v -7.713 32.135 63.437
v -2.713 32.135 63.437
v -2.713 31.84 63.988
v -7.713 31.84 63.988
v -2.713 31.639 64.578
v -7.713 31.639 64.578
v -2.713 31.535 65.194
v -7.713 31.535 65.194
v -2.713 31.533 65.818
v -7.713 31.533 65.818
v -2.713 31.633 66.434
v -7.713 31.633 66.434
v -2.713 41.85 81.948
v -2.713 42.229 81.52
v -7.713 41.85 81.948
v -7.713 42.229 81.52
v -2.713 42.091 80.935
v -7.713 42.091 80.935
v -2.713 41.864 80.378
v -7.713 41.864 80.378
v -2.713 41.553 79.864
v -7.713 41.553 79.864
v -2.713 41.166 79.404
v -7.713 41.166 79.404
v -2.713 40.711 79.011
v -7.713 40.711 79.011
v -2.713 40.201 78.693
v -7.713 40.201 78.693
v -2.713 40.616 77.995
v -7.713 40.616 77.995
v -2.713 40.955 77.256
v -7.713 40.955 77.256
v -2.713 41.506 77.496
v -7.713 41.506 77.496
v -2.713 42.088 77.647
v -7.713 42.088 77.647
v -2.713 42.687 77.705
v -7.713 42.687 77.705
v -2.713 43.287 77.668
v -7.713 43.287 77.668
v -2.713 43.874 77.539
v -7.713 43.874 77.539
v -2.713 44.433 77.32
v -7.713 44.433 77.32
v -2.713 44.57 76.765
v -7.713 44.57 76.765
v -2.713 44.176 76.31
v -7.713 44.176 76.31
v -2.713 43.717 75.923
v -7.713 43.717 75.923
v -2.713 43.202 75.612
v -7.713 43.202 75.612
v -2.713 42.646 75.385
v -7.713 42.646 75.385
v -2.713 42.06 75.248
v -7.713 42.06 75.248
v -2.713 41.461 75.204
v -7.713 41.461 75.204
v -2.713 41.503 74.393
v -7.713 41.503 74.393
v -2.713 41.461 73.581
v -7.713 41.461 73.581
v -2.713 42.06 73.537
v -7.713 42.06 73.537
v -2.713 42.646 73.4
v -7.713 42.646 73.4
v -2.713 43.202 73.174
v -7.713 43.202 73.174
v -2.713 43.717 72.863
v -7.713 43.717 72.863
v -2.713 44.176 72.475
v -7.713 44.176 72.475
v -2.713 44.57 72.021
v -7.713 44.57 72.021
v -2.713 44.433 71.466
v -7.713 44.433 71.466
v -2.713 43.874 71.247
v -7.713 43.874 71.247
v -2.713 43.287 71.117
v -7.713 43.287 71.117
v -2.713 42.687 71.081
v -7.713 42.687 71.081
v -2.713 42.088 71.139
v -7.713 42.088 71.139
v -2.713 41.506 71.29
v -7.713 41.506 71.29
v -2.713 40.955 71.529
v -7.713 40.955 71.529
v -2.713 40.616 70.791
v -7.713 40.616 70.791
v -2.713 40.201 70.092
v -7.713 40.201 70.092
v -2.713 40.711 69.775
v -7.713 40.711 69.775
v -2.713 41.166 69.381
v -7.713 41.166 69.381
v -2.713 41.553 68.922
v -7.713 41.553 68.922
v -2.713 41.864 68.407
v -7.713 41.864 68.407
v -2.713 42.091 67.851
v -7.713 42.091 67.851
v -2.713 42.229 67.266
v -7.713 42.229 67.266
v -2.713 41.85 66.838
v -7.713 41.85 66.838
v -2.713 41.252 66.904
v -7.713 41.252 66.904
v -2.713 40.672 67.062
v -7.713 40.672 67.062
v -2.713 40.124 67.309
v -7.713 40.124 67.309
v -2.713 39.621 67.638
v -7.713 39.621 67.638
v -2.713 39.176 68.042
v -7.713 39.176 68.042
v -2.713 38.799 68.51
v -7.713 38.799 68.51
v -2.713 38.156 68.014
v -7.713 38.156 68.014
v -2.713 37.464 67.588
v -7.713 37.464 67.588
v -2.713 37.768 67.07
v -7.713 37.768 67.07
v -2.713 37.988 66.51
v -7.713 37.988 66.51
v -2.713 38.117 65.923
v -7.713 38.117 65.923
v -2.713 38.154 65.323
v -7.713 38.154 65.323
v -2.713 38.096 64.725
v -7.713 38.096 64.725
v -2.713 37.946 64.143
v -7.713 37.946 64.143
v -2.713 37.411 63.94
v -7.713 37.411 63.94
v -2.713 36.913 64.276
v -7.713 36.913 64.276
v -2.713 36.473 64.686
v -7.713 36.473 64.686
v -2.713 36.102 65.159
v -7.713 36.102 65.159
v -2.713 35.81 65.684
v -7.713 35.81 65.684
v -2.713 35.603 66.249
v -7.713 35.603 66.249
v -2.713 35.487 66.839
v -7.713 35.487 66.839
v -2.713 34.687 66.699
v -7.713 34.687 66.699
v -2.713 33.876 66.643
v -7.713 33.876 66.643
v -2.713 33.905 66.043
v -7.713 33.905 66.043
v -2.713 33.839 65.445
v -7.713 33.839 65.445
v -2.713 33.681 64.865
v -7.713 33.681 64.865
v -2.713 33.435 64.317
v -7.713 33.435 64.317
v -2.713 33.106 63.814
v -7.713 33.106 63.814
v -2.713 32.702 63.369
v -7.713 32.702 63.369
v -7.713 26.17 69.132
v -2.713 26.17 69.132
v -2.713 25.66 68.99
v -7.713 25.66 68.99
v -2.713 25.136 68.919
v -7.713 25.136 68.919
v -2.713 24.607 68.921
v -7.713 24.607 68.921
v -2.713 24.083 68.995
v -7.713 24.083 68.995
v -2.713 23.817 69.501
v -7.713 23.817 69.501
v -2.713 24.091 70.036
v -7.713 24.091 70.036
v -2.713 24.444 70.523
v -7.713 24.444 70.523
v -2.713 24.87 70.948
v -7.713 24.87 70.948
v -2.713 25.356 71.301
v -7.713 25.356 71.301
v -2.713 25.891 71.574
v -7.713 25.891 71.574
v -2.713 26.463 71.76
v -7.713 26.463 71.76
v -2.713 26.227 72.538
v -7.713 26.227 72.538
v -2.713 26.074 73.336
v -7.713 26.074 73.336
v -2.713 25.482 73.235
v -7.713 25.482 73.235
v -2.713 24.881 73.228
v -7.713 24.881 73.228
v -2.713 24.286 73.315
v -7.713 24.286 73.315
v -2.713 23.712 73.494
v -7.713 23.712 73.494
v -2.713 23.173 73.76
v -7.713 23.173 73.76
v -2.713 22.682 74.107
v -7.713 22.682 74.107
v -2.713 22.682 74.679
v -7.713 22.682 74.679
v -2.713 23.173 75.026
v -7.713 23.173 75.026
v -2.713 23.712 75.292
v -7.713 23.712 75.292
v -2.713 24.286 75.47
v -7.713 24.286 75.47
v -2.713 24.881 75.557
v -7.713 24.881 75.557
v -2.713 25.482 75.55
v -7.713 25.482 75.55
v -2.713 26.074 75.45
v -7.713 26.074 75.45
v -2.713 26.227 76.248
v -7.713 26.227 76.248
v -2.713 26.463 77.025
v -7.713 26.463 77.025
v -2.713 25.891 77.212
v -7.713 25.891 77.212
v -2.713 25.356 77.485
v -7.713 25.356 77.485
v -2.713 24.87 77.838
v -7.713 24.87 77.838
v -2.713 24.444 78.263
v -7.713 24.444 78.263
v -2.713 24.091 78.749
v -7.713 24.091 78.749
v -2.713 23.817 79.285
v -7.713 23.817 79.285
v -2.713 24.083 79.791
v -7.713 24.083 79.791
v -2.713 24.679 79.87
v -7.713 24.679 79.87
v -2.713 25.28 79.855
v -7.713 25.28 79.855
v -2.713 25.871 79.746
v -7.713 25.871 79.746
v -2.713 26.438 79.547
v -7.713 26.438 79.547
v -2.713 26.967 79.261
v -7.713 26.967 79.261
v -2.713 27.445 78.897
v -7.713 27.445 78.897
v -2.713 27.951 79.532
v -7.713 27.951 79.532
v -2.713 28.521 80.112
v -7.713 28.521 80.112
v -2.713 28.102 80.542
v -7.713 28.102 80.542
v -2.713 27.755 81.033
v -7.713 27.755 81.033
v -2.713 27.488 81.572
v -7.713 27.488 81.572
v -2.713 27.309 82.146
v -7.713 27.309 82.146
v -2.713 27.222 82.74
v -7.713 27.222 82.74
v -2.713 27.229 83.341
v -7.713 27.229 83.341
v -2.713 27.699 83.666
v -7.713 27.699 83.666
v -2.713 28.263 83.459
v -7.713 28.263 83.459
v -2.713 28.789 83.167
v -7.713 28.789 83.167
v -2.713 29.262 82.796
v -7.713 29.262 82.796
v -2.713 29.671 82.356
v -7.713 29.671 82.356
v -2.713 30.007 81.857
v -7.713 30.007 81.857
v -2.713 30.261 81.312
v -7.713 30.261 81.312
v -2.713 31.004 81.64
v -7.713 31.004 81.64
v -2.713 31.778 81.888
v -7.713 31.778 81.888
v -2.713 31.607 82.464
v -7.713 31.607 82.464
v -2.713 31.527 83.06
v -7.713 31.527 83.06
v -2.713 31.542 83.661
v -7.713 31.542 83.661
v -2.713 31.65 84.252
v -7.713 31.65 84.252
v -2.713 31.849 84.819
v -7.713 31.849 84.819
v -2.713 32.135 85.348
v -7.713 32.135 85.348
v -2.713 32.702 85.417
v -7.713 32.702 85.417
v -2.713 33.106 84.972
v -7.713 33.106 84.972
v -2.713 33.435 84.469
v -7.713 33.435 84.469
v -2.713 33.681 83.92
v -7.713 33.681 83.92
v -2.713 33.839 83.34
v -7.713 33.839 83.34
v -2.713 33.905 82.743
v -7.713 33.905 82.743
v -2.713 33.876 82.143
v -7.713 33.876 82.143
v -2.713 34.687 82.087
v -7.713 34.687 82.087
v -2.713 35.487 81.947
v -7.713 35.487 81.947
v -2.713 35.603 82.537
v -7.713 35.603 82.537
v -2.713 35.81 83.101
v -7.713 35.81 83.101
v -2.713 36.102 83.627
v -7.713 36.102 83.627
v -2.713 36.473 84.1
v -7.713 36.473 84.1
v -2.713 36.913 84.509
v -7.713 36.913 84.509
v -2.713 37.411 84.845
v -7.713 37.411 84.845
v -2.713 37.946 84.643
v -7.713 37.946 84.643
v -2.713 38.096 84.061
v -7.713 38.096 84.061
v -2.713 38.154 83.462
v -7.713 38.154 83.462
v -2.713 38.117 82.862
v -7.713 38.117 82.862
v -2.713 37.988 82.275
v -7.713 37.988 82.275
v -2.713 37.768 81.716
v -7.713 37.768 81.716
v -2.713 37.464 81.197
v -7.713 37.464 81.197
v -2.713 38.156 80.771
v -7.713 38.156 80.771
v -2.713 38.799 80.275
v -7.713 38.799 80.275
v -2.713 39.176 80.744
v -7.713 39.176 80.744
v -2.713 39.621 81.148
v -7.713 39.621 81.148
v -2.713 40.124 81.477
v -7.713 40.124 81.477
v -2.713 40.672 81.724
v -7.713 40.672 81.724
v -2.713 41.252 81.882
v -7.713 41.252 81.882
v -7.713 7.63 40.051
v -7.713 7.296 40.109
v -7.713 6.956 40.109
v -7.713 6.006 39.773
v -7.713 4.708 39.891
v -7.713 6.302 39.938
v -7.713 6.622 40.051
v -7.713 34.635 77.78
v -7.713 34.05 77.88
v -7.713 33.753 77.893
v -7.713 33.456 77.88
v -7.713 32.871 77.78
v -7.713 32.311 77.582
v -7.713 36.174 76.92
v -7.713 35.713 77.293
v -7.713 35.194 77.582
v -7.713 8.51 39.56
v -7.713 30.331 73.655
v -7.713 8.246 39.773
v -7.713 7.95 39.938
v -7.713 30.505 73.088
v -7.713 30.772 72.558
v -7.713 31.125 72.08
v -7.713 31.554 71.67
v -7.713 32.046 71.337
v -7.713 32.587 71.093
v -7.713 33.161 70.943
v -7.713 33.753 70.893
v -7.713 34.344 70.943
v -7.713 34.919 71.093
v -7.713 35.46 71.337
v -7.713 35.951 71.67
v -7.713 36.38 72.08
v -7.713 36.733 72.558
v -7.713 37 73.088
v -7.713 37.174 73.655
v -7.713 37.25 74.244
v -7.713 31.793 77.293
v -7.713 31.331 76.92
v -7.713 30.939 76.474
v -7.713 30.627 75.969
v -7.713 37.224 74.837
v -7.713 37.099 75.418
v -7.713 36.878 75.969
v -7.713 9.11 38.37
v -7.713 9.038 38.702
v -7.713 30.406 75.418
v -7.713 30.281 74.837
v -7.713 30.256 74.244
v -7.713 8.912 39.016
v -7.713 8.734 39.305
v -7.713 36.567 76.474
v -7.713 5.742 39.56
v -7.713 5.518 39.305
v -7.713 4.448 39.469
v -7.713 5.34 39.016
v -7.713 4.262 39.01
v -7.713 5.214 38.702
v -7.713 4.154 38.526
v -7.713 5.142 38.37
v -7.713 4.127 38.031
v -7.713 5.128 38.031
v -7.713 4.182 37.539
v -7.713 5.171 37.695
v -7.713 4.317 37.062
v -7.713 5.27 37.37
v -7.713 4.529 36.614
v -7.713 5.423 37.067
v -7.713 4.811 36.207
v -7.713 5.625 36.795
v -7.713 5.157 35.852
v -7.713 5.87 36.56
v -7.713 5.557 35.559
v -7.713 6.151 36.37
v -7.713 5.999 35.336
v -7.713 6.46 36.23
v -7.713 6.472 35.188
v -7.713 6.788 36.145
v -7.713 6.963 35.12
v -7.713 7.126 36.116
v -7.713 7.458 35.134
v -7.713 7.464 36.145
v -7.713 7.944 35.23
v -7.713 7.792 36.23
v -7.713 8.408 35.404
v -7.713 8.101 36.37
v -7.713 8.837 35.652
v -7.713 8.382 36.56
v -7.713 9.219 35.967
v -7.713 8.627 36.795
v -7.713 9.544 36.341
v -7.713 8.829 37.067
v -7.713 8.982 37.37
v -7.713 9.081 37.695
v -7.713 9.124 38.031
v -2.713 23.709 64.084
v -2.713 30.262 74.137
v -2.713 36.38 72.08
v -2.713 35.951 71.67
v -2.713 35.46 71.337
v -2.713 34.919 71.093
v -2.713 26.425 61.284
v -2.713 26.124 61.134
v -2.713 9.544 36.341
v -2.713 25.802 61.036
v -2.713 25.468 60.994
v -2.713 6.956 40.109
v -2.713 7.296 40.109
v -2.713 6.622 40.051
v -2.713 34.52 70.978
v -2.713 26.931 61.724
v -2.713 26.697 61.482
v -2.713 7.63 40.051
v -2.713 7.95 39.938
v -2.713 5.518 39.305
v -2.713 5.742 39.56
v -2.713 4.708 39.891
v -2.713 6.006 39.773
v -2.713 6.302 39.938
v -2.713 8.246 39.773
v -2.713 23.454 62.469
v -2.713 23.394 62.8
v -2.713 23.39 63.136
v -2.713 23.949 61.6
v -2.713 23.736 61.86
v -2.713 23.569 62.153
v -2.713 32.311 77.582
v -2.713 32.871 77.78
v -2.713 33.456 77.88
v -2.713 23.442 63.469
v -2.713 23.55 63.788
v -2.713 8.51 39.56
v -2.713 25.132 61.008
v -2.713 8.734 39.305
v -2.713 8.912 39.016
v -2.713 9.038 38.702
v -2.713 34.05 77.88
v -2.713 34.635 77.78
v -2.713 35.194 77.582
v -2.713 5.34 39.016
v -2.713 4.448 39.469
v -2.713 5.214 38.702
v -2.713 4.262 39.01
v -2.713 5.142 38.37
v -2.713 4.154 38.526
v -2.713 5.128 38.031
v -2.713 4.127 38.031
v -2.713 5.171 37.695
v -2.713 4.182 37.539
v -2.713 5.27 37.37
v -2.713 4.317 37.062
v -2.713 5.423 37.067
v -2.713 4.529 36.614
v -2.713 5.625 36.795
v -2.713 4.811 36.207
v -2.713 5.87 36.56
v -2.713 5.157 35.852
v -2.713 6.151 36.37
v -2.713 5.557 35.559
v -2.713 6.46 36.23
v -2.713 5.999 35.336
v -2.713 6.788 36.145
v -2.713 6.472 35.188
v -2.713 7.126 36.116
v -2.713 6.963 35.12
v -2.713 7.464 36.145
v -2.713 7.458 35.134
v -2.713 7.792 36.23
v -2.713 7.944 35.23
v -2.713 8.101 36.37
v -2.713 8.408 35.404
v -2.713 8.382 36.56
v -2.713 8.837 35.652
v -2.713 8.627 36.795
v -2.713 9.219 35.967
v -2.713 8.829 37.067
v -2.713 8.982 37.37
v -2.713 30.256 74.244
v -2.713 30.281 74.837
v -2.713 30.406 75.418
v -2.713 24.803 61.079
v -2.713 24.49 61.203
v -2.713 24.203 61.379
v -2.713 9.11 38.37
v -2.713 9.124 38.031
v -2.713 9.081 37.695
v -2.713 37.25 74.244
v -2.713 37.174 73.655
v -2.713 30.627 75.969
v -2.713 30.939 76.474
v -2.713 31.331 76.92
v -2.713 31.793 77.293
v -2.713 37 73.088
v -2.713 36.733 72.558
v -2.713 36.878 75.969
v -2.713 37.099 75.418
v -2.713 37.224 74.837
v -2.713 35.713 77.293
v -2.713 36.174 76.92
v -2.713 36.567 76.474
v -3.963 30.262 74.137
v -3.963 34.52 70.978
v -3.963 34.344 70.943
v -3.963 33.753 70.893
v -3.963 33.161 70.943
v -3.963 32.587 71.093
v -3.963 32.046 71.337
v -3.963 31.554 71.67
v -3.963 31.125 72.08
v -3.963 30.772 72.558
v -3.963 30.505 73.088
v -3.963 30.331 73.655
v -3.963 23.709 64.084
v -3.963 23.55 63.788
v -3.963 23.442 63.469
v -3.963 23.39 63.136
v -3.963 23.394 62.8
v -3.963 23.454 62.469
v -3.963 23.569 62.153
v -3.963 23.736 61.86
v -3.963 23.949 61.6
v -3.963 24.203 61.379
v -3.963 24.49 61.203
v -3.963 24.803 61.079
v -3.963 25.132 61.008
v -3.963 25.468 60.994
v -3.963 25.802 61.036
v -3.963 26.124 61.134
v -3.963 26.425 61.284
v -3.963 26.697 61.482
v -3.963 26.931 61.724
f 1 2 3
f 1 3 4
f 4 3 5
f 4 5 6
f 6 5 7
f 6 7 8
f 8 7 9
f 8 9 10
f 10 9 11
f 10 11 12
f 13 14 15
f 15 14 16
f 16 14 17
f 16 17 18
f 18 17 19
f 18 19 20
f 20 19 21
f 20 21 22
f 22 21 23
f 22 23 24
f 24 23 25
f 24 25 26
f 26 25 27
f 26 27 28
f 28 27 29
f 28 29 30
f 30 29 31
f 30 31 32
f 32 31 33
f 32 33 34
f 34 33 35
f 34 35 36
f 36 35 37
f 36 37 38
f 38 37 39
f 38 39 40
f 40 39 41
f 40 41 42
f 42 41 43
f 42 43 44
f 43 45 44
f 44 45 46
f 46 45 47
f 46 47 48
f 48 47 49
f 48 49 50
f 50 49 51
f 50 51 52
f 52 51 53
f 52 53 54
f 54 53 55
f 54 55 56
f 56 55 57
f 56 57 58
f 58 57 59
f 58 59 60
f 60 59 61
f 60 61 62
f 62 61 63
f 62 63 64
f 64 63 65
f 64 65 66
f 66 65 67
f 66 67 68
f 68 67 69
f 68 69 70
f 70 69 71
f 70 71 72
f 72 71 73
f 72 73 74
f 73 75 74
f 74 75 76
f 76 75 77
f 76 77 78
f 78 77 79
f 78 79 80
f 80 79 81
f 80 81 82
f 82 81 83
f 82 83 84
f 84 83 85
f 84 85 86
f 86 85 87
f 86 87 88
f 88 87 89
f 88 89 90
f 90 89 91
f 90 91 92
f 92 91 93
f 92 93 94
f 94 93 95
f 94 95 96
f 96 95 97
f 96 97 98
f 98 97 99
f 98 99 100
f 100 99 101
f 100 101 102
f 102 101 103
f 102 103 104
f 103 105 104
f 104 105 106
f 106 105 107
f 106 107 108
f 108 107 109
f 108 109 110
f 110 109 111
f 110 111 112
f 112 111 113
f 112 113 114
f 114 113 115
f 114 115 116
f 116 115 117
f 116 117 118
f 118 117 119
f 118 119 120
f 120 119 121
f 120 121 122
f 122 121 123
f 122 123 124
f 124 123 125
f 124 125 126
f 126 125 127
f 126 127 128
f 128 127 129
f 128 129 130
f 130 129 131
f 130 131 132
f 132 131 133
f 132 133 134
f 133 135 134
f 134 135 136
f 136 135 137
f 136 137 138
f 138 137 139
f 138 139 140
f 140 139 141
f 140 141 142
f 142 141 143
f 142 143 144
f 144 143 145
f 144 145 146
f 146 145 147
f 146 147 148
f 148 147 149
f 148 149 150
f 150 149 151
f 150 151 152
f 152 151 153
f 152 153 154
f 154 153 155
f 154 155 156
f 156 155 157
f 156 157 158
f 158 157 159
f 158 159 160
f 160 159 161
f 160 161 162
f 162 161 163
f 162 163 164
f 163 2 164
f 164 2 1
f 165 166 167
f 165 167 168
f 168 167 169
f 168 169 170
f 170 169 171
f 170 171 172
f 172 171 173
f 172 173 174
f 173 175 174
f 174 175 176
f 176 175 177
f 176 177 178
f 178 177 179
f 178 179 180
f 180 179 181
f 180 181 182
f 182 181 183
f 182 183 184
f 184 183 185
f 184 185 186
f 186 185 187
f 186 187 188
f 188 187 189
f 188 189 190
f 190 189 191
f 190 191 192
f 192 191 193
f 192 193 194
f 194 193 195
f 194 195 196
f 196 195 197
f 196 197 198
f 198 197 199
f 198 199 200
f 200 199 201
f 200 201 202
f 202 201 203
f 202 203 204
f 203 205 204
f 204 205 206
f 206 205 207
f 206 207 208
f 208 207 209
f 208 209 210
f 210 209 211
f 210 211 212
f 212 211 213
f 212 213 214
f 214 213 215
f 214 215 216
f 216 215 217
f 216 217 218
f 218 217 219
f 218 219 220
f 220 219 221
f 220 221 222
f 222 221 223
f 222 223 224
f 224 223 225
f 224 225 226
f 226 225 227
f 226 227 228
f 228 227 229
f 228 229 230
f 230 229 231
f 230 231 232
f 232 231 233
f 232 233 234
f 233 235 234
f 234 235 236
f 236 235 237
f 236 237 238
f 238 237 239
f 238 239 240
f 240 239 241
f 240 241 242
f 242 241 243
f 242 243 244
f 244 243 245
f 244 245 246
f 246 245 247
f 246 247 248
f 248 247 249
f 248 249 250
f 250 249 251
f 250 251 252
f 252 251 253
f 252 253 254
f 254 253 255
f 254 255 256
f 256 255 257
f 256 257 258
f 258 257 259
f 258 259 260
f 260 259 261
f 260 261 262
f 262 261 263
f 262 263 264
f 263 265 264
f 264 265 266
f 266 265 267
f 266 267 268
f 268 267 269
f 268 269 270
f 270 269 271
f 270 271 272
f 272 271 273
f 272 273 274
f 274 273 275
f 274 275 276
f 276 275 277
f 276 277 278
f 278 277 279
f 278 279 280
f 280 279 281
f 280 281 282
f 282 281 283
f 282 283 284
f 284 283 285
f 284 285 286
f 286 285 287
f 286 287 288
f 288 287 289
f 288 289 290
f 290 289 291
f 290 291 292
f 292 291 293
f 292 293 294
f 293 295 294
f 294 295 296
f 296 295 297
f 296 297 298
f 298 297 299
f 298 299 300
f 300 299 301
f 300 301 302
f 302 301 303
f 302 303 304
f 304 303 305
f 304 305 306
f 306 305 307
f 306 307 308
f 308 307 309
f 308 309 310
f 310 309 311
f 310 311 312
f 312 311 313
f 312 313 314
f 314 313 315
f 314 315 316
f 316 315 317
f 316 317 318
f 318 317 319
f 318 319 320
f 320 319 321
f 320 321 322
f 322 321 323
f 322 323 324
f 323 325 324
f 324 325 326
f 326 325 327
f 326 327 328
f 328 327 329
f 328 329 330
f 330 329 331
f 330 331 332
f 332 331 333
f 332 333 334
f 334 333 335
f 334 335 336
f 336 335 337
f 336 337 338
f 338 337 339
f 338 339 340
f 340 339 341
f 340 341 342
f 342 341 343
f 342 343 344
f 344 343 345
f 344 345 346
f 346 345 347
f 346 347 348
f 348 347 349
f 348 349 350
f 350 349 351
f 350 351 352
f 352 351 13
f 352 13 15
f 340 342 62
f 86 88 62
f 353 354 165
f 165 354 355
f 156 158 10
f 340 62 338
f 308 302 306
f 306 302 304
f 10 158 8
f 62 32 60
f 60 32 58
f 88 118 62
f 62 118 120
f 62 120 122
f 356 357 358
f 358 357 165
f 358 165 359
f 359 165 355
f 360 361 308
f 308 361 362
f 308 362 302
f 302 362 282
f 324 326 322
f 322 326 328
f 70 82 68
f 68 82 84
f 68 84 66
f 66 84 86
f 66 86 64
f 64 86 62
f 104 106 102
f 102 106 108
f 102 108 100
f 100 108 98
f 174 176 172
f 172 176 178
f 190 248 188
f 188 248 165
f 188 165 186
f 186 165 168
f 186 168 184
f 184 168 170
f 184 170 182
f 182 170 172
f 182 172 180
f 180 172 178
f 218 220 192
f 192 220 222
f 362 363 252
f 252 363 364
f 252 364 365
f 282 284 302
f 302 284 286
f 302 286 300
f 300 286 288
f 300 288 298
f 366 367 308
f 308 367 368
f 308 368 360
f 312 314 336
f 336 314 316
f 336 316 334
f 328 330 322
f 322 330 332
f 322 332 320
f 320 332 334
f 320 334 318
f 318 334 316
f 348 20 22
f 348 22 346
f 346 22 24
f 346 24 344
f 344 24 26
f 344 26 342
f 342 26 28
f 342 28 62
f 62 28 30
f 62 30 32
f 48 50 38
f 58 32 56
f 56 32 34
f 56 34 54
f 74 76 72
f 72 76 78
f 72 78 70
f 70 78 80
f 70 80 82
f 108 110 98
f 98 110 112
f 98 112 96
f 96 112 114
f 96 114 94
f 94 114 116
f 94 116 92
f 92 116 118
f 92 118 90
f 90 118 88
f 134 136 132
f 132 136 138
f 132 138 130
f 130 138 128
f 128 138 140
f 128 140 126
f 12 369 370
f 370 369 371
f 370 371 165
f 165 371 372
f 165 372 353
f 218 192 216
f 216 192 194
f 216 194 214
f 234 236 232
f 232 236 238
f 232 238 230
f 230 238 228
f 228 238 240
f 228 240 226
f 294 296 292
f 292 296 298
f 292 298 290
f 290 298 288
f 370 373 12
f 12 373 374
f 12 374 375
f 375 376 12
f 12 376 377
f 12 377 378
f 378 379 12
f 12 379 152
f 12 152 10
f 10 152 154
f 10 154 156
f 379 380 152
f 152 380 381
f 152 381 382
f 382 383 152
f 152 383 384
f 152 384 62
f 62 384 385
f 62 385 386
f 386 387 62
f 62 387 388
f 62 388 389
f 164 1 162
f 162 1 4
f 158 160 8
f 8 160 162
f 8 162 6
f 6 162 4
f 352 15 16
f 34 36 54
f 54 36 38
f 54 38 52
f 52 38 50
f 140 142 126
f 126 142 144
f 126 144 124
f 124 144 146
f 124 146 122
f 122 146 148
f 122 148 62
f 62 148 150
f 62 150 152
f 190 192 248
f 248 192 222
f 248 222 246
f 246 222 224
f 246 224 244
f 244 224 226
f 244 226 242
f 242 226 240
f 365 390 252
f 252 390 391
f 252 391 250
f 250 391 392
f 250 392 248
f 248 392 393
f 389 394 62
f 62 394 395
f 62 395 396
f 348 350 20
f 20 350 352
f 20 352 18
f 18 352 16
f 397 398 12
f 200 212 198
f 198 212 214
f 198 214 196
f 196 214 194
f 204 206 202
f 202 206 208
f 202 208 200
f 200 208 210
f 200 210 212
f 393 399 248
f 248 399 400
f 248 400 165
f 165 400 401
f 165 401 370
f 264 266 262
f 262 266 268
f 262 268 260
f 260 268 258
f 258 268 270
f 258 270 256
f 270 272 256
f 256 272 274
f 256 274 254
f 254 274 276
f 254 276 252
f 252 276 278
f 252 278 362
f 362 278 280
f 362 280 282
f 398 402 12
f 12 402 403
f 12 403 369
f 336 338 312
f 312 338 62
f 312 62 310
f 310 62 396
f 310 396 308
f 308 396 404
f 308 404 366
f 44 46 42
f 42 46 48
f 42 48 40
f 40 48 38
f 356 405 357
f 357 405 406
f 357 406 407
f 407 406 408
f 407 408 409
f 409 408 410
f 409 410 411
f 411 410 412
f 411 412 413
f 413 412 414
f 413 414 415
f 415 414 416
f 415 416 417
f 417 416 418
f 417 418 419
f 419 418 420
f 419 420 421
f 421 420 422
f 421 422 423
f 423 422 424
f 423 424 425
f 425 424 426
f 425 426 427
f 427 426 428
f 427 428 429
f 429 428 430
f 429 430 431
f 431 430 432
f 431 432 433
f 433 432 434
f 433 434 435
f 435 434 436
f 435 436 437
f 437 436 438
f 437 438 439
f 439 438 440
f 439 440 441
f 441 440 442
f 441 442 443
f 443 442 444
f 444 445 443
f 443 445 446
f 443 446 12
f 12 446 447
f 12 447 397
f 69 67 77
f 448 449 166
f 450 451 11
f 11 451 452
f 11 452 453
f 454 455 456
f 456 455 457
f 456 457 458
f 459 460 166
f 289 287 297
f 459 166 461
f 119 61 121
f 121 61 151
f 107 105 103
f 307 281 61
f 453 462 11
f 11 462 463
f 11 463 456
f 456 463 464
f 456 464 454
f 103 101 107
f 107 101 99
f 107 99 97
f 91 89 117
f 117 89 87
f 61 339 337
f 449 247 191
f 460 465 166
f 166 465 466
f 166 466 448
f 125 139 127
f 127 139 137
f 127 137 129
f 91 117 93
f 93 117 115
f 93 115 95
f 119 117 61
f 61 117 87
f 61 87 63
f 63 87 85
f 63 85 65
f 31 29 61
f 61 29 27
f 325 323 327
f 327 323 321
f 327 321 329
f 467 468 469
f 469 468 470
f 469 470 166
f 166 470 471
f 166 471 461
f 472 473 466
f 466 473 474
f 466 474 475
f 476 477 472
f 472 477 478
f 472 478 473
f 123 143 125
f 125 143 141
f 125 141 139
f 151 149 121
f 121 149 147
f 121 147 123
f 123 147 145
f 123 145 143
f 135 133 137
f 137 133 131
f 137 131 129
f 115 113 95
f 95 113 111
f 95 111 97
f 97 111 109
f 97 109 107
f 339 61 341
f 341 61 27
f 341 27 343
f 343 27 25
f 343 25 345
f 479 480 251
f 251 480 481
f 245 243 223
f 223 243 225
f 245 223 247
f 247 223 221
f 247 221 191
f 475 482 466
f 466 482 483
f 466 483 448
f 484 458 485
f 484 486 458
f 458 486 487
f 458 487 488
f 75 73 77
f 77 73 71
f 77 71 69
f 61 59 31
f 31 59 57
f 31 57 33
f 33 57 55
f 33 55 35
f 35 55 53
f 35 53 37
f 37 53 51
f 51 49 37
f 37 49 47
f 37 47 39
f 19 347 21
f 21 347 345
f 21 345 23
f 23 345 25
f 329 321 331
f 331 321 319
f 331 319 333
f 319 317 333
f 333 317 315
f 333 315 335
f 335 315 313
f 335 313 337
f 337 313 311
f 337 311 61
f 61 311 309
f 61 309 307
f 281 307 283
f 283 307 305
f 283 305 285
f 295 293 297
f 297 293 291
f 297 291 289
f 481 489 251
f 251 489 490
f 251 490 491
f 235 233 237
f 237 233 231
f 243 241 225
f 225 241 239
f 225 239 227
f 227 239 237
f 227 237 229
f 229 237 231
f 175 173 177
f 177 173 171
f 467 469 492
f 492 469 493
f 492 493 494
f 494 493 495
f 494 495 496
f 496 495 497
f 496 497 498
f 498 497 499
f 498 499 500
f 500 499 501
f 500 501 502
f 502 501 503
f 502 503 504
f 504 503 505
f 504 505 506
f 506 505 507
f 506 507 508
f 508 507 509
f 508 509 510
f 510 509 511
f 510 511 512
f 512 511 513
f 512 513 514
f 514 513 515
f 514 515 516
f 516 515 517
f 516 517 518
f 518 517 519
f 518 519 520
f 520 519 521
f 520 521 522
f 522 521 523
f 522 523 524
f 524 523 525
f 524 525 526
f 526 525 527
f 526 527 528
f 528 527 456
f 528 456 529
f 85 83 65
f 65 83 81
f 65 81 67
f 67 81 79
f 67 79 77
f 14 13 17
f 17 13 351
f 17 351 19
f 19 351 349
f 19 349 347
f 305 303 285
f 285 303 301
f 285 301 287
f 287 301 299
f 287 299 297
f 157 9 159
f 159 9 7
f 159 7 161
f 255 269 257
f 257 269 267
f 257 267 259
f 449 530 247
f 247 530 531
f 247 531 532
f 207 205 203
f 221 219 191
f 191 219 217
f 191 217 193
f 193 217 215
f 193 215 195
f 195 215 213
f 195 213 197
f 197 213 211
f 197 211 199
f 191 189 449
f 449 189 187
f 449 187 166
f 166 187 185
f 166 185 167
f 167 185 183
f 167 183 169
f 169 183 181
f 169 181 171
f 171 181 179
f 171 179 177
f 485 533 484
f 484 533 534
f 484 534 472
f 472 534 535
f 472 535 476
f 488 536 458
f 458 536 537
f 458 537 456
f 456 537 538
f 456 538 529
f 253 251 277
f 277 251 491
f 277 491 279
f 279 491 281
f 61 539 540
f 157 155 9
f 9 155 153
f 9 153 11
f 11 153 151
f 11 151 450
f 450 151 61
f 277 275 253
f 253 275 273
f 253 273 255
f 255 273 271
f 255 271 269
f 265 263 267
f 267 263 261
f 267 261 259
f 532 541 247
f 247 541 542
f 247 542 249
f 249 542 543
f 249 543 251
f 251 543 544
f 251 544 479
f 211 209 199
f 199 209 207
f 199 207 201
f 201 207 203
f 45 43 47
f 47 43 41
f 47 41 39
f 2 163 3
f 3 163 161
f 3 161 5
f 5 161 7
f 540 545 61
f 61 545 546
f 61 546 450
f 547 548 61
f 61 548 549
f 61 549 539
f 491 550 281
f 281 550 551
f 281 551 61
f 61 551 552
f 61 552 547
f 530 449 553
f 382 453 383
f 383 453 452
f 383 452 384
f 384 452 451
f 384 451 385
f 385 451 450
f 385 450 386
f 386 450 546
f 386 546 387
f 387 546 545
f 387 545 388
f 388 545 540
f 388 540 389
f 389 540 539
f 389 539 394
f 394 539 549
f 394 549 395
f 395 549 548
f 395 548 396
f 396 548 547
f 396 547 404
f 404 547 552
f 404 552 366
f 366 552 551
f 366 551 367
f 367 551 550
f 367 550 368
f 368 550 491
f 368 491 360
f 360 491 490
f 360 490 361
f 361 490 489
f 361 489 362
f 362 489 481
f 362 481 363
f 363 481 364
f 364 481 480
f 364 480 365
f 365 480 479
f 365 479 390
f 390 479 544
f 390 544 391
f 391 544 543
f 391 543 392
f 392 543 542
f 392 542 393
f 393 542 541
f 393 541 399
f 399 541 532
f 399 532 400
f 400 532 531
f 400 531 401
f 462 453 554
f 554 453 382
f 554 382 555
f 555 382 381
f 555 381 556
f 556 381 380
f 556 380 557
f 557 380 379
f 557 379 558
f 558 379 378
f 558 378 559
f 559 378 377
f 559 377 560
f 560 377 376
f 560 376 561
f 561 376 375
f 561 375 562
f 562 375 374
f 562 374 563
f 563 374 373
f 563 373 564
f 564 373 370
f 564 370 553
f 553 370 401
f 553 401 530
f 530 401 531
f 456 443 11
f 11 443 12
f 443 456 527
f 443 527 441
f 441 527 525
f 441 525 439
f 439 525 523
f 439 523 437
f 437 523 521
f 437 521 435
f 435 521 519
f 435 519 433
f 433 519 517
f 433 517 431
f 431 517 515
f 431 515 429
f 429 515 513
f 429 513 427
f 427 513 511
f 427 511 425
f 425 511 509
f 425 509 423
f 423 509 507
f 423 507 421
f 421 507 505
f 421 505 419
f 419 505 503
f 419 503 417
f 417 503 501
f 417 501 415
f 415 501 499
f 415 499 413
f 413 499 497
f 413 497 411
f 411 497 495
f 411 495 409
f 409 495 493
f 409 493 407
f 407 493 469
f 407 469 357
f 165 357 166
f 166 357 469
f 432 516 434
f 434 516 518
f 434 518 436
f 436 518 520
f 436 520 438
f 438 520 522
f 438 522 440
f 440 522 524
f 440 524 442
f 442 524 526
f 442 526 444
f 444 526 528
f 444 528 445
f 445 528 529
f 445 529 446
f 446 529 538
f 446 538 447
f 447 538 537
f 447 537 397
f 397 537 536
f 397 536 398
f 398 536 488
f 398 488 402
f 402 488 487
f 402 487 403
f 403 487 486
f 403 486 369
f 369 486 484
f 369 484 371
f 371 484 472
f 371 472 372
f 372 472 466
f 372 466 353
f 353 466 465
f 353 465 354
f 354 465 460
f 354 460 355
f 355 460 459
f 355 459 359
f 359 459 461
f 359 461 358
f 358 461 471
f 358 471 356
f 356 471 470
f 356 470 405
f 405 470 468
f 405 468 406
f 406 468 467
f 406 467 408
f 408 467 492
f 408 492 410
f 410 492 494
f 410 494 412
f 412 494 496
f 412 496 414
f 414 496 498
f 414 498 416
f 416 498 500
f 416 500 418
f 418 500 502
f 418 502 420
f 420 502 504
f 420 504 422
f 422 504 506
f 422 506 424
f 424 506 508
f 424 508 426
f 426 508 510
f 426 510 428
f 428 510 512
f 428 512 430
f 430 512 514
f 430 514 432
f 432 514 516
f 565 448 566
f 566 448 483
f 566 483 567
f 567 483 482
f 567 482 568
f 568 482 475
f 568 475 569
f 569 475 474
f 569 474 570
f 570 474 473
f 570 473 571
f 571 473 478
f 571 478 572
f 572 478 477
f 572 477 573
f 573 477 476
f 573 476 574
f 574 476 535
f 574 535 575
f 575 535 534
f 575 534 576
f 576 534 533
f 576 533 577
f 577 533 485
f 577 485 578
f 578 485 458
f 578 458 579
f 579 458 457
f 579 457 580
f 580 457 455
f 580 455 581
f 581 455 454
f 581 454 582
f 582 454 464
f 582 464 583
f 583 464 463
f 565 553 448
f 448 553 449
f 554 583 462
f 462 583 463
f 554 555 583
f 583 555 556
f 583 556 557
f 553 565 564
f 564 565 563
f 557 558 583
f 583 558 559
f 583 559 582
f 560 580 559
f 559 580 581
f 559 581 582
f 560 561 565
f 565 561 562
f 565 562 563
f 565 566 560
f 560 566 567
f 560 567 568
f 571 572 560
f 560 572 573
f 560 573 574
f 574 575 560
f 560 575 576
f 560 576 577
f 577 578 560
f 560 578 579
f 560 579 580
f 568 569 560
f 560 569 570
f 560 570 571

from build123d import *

# Parameters (mm, degrees)
SKETCH1_R           = 3.5
BOSS_EXTRUDE1_DEPTH = 5
SKETCH2_R           = 2
BOSS_EXTRUDE2_DEPTH = 5
CUT_EXTRUDE1_DEPTH  = 1.25


with BuildPart() as part:
    # Sketch1 → Boss-Extrude1 (new body)
    with BuildSketch(Plane(origin=(-2.712826585, 0, 0), x_dir=(0, 0, -1), z_dir=(1, 0, 0))):
        with BuildLine():
            ThreePointArc((-81.947812788, 41.849675859), (-81.477011433, 40.124136701), (-80.275497155, 38.799182837))
            ThreePointArc((-80.275497155, 38.799182837), (-80.771500839, 38.155576831), (-81.197397579, 37.463579494))
            ThreePointArc((-81.197397579, 37.463579494), (-82.862313797, 38.117179744), (-84.642669398, 37.94550204))
            ThreePointArc((-84.642669398, 37.94550204), (-84.747423061, 37.679683216), (-84.845284304, 37.411250441))
            ThreePointArc((-84.845284304, 37.411250441), (-83.626512376, 36.102153696), (-81.946887557, 35.48733684))
            ThreePointArc((-81.946887557, 35.48733684), (-82.086978383, 34.686947618), (-82.14250402, 33.876290323))
            ThreePointArc((-82.14250402, 33.876290323), (-83.920457299, 33.681299457), (-85.417101287, 32.701913897))
            ThreePointArc((-85.417101287, 32.701913897), (-85.386323881, 32.417861562), (-85.348228779, 32.134697757))
            ThreePointArc((-85.348228779, 32.134697757), (-83.660692239, 31.541941712), (-81.887738682, 31.778108996))
            ThreePointArc((-81.887738682, 31.778108996), (-81.63982353, 31.004296084), (-81.31225781, 30.260690647))
            ThreePointArc((-81.31225781, 30.260690647), (-82.795940481, 29.261778722), (-83.666009754, 27.699050735))
            ThreePointArc((-83.666009754, 27.699050735), (-83.506752013, 27.461837857), (-83.341427693, 27.228812437))
            ThreePointArc((-83.341427693, 27.228812437), (-81.571720826, 27.488190359), (-80.111600825, 28.521238704))
            ThreePointArc((-80.111600825, 28.521238704), (-79.532474069, 27.951273314), (-78.896858351, 27.44507078))
            ThreePointArc((-78.896858351, 27.44507078), (-79.746376594, 25.871076479), (-79.790548767, 24.083008214))
            ThreePointArc((-79.790548767, 24.083008214), (-79.53929472, 23.946977405), (-79.284614992, 23.817473685))
            ThreePointArc((-79.284614992, 23.817473685), (-77.838156313, 24.869565218), (-77.025365765, 26.462835698))
            ThreePointArc((-77.025365765, 26.462835698), (-76.247698364, 26.227290032), (-75.44964455, 26.074455301))
            ThreePointArc((-75.44964455, 26.074455301), (-75.470383973, 24.285961751), (-74.678539734, 22.682178099))
            ThreePointArc((-74.678539734, 22.682178099), (-74.392848655, 22.678492377), (-74.107157575, 22.682178099))
            ThreePointArc((-74.107157575, 22.682178099), (-73.315313337, 24.285961751), (-73.33605276, 26.074455301))
            ThreePointArc((-73.33605276, 26.074455301), (-72.537998945, 26.227290032), (-71.760331544, 26.462835698))
            ThreePointArc((-71.760331544, 26.462835698), (-70.947540996, 24.869565218), (-69.501082317, 23.817473685))
            ThreePointArc((-69.501082317, 23.817473685), (-69.246402589, 23.946977405), (-68.995148542, 24.083008214))
            ThreePointArc((-68.995148542, 24.083008214), (-69.039320715, 25.871076479), (-69.888838958, 27.44507078))
            ThreePointArc((-69.888838958, 27.44507078), (-69.25322324, 27.951273314), (-68.674096484, 28.521238704))
            ThreePointArc((-68.674096484, 28.521238704), (-67.213976483, 27.488190359), (-65.444269616, 27.228812437))
            ThreePointArc((-65.444269616, 27.228812437), (-65.278945296, 27.461837857), (-65.119687555, 27.699050735))
            ThreePointArc((-65.119687555, 27.699050735), (-65.989756828, 29.261778722), (-67.473439499, 30.260690647))
            ThreePointArc((-67.473439499, 30.260690647), (-67.145873779, 31.004296084), (-66.897958627, 31.778108996))
            ThreePointArc((-66.897958627, 31.778108996), (-65.12500507, 31.541941712), (-63.437468531, 32.134697757))
            ThreePointArc((-63.437468531, 32.134697757), (-63.399373428, 32.417861562), (-63.368596022, 32.701913897))
            ThreePointArc((-63.368596022, 32.701913897), (-64.86524001, 33.681299457), (-66.643193289, 33.876290323))
            ThreePointArc((-66.643193289, 33.876290323), (-66.698718926, 34.686947618), (-66.838809753, 35.48733684))
            ThreePointArc((-66.838809753, 35.48733684), (-65.159184933, 36.102153696), (-63.940413005, 37.411250441))
            ThreePointArc((-63.940413005, 37.411250441), (-64.038274248, 37.679683216), (-64.143027911, 37.94550204))
            ThreePointArc((-64.143027911, 37.94550204), (-65.923383512, 38.117179744), (-67.58829973, 37.463579494))
            ThreePointArc((-67.58829973, 37.463579494), (-68.01419647, 38.155576831), (-68.510200154, 38.799182837))
            ThreePointArc((-68.510200154, 38.799182837), (-67.308685876, 40.124136701), (-66.837884521, 41.849675859))
            ThreePointArc((-66.837884521, 41.849675859), (-67.049283279, 42.041882889), (-67.265570208, 42.228572314))
            ThreePointArc((-67.265570208, 42.228572314), (-68.92177941, 41.55321287), (-70.092246326, 40.200753443))
            ThreePointArc((-70.092246326, 40.200753443), (-70.790946358, 40.615562571), (-71.529234434, 40.954942982))
            ThreePointArc((-71.529234434, 40.954942982), (-71.081083139, 42.686502891), (-71.466107273, 44.433184235))
            ThreePointArc((-71.466107273, 44.433184235), (-71.742614638, 44.505133207), (-72.020886105, 44.569924936))
            ThreePointArc((-72.020886105, 44.569924936), (-73.173531339, 43.202245052), (-73.581409088, 41.460758605))
            ThreePointArc((-73.581409088, 41.460758605), (-74.392848655, 41.503351752), (-75.204288221, 41.460758605))
            ThreePointArc((-75.204288221, 41.460758605), (-75.61216597, 43.202245052), (-76.764811205, 44.569924936))
            ThreePointArc((-76.764811205, 44.569924936), (-77.043082671, 44.505133207), (-77.319590036, 44.433184235))
            ThreePointArc((-77.319590036, 44.433184235), (-77.70461417, 42.686502891), (-77.256462875, 40.954942982))
            ThreePointArc((-77.256462875, 40.954942982), (-77.994750951, 40.615562571), (-78.693450983, 40.200753443))
            ThreePointArc((-78.693450983, 40.200753443), (-79.863917899, 41.55321287), (-81.520127101, 42.228572314))
            ThreePointArc((-81.520127101, 42.228572314), (-81.73641403, 42.041882889), (-81.947812788, 41.849675859))
        make_face()
        with Locations((-74.392848655, 33.752711127)):
            Circle(SKETCH1_R, mode=Mode.SUBTRACT)
    extrude(amount=-BOSS_EXTRUDE1_DEPTH)

    # Sketch2 → Boss-Extrude2 (add)
    with BuildSketch(Plane(origin=(-2.712826585, 0, 0), x_dir=(0, 0, -1), z_dir=(1, 0, 0))):
        with BuildLine():
            Line((-36.340788792, 9.544432787), (-71.164417227, 35.104462035))
            ThreePointArc((-71.164417227, 35.104462035), (-71.527272682, 31.649420661), (-74.714649395, 30.267536198))
            Line((-74.714649395, 30.267536198), (-39.891020959, 4.70750695))
            ThreePointArc((-39.891020959, 4.70750695), (-35.697441957, 5.350853784), (-36.340788792, 9.544432787))
        make_face()
        with Locations((-38.115904876, 7.125969868)):
            Circle(SKETCH2_R, mode=Mode.SUBTRACT)
    extrude(amount=-BOSS_EXTRUDE2_DEPTH)

    # Sketch4 → Cut-Extrude1 (cut)
    with BuildSketch(Plane(origin=(-2.712826585, 0, 0), x_dir=(0, 0, -1), z_dir=(1, 0, 0))):
        with BuildLine():
            Line((-0.915831104, -5.866675378), (-4.542476407, -4.193411072))
            ThreePointArc((-4.542476407, -4.193411072), (-3.521318412, -6.746986699), (-0.915831104, -5.866675378))
        make_face()
        with BuildLine():
            ThreePointArc((-70.977992994, 34.520018639), (-71.581978602, 31.667283222), (-74.137028803, 30.262072761))
            Line((-74.137028803, 30.262072761), (-64.084174194, 23.709202076))
            Line((-64.084174194, 23.709202076), (-61.723827508, 26.931178659))
            Line((-61.723827508, 26.931178659), (-70.977992994, 34.520018639))
        make_face()
        with BuildLine():
            Line((-61.723827508, 26.931178659), (-64.084174194, 23.709202076))
            ThreePointArc((-64.084174194, 23.709202076), (-61.378637545, 24.202743939), (-61.723827508, 26.931178659))
        make_face()
    extrude(amount=-CUT_EXTRUDE1_DEPTH, mode=Mode.SUBTRACT)


solid = part.part
